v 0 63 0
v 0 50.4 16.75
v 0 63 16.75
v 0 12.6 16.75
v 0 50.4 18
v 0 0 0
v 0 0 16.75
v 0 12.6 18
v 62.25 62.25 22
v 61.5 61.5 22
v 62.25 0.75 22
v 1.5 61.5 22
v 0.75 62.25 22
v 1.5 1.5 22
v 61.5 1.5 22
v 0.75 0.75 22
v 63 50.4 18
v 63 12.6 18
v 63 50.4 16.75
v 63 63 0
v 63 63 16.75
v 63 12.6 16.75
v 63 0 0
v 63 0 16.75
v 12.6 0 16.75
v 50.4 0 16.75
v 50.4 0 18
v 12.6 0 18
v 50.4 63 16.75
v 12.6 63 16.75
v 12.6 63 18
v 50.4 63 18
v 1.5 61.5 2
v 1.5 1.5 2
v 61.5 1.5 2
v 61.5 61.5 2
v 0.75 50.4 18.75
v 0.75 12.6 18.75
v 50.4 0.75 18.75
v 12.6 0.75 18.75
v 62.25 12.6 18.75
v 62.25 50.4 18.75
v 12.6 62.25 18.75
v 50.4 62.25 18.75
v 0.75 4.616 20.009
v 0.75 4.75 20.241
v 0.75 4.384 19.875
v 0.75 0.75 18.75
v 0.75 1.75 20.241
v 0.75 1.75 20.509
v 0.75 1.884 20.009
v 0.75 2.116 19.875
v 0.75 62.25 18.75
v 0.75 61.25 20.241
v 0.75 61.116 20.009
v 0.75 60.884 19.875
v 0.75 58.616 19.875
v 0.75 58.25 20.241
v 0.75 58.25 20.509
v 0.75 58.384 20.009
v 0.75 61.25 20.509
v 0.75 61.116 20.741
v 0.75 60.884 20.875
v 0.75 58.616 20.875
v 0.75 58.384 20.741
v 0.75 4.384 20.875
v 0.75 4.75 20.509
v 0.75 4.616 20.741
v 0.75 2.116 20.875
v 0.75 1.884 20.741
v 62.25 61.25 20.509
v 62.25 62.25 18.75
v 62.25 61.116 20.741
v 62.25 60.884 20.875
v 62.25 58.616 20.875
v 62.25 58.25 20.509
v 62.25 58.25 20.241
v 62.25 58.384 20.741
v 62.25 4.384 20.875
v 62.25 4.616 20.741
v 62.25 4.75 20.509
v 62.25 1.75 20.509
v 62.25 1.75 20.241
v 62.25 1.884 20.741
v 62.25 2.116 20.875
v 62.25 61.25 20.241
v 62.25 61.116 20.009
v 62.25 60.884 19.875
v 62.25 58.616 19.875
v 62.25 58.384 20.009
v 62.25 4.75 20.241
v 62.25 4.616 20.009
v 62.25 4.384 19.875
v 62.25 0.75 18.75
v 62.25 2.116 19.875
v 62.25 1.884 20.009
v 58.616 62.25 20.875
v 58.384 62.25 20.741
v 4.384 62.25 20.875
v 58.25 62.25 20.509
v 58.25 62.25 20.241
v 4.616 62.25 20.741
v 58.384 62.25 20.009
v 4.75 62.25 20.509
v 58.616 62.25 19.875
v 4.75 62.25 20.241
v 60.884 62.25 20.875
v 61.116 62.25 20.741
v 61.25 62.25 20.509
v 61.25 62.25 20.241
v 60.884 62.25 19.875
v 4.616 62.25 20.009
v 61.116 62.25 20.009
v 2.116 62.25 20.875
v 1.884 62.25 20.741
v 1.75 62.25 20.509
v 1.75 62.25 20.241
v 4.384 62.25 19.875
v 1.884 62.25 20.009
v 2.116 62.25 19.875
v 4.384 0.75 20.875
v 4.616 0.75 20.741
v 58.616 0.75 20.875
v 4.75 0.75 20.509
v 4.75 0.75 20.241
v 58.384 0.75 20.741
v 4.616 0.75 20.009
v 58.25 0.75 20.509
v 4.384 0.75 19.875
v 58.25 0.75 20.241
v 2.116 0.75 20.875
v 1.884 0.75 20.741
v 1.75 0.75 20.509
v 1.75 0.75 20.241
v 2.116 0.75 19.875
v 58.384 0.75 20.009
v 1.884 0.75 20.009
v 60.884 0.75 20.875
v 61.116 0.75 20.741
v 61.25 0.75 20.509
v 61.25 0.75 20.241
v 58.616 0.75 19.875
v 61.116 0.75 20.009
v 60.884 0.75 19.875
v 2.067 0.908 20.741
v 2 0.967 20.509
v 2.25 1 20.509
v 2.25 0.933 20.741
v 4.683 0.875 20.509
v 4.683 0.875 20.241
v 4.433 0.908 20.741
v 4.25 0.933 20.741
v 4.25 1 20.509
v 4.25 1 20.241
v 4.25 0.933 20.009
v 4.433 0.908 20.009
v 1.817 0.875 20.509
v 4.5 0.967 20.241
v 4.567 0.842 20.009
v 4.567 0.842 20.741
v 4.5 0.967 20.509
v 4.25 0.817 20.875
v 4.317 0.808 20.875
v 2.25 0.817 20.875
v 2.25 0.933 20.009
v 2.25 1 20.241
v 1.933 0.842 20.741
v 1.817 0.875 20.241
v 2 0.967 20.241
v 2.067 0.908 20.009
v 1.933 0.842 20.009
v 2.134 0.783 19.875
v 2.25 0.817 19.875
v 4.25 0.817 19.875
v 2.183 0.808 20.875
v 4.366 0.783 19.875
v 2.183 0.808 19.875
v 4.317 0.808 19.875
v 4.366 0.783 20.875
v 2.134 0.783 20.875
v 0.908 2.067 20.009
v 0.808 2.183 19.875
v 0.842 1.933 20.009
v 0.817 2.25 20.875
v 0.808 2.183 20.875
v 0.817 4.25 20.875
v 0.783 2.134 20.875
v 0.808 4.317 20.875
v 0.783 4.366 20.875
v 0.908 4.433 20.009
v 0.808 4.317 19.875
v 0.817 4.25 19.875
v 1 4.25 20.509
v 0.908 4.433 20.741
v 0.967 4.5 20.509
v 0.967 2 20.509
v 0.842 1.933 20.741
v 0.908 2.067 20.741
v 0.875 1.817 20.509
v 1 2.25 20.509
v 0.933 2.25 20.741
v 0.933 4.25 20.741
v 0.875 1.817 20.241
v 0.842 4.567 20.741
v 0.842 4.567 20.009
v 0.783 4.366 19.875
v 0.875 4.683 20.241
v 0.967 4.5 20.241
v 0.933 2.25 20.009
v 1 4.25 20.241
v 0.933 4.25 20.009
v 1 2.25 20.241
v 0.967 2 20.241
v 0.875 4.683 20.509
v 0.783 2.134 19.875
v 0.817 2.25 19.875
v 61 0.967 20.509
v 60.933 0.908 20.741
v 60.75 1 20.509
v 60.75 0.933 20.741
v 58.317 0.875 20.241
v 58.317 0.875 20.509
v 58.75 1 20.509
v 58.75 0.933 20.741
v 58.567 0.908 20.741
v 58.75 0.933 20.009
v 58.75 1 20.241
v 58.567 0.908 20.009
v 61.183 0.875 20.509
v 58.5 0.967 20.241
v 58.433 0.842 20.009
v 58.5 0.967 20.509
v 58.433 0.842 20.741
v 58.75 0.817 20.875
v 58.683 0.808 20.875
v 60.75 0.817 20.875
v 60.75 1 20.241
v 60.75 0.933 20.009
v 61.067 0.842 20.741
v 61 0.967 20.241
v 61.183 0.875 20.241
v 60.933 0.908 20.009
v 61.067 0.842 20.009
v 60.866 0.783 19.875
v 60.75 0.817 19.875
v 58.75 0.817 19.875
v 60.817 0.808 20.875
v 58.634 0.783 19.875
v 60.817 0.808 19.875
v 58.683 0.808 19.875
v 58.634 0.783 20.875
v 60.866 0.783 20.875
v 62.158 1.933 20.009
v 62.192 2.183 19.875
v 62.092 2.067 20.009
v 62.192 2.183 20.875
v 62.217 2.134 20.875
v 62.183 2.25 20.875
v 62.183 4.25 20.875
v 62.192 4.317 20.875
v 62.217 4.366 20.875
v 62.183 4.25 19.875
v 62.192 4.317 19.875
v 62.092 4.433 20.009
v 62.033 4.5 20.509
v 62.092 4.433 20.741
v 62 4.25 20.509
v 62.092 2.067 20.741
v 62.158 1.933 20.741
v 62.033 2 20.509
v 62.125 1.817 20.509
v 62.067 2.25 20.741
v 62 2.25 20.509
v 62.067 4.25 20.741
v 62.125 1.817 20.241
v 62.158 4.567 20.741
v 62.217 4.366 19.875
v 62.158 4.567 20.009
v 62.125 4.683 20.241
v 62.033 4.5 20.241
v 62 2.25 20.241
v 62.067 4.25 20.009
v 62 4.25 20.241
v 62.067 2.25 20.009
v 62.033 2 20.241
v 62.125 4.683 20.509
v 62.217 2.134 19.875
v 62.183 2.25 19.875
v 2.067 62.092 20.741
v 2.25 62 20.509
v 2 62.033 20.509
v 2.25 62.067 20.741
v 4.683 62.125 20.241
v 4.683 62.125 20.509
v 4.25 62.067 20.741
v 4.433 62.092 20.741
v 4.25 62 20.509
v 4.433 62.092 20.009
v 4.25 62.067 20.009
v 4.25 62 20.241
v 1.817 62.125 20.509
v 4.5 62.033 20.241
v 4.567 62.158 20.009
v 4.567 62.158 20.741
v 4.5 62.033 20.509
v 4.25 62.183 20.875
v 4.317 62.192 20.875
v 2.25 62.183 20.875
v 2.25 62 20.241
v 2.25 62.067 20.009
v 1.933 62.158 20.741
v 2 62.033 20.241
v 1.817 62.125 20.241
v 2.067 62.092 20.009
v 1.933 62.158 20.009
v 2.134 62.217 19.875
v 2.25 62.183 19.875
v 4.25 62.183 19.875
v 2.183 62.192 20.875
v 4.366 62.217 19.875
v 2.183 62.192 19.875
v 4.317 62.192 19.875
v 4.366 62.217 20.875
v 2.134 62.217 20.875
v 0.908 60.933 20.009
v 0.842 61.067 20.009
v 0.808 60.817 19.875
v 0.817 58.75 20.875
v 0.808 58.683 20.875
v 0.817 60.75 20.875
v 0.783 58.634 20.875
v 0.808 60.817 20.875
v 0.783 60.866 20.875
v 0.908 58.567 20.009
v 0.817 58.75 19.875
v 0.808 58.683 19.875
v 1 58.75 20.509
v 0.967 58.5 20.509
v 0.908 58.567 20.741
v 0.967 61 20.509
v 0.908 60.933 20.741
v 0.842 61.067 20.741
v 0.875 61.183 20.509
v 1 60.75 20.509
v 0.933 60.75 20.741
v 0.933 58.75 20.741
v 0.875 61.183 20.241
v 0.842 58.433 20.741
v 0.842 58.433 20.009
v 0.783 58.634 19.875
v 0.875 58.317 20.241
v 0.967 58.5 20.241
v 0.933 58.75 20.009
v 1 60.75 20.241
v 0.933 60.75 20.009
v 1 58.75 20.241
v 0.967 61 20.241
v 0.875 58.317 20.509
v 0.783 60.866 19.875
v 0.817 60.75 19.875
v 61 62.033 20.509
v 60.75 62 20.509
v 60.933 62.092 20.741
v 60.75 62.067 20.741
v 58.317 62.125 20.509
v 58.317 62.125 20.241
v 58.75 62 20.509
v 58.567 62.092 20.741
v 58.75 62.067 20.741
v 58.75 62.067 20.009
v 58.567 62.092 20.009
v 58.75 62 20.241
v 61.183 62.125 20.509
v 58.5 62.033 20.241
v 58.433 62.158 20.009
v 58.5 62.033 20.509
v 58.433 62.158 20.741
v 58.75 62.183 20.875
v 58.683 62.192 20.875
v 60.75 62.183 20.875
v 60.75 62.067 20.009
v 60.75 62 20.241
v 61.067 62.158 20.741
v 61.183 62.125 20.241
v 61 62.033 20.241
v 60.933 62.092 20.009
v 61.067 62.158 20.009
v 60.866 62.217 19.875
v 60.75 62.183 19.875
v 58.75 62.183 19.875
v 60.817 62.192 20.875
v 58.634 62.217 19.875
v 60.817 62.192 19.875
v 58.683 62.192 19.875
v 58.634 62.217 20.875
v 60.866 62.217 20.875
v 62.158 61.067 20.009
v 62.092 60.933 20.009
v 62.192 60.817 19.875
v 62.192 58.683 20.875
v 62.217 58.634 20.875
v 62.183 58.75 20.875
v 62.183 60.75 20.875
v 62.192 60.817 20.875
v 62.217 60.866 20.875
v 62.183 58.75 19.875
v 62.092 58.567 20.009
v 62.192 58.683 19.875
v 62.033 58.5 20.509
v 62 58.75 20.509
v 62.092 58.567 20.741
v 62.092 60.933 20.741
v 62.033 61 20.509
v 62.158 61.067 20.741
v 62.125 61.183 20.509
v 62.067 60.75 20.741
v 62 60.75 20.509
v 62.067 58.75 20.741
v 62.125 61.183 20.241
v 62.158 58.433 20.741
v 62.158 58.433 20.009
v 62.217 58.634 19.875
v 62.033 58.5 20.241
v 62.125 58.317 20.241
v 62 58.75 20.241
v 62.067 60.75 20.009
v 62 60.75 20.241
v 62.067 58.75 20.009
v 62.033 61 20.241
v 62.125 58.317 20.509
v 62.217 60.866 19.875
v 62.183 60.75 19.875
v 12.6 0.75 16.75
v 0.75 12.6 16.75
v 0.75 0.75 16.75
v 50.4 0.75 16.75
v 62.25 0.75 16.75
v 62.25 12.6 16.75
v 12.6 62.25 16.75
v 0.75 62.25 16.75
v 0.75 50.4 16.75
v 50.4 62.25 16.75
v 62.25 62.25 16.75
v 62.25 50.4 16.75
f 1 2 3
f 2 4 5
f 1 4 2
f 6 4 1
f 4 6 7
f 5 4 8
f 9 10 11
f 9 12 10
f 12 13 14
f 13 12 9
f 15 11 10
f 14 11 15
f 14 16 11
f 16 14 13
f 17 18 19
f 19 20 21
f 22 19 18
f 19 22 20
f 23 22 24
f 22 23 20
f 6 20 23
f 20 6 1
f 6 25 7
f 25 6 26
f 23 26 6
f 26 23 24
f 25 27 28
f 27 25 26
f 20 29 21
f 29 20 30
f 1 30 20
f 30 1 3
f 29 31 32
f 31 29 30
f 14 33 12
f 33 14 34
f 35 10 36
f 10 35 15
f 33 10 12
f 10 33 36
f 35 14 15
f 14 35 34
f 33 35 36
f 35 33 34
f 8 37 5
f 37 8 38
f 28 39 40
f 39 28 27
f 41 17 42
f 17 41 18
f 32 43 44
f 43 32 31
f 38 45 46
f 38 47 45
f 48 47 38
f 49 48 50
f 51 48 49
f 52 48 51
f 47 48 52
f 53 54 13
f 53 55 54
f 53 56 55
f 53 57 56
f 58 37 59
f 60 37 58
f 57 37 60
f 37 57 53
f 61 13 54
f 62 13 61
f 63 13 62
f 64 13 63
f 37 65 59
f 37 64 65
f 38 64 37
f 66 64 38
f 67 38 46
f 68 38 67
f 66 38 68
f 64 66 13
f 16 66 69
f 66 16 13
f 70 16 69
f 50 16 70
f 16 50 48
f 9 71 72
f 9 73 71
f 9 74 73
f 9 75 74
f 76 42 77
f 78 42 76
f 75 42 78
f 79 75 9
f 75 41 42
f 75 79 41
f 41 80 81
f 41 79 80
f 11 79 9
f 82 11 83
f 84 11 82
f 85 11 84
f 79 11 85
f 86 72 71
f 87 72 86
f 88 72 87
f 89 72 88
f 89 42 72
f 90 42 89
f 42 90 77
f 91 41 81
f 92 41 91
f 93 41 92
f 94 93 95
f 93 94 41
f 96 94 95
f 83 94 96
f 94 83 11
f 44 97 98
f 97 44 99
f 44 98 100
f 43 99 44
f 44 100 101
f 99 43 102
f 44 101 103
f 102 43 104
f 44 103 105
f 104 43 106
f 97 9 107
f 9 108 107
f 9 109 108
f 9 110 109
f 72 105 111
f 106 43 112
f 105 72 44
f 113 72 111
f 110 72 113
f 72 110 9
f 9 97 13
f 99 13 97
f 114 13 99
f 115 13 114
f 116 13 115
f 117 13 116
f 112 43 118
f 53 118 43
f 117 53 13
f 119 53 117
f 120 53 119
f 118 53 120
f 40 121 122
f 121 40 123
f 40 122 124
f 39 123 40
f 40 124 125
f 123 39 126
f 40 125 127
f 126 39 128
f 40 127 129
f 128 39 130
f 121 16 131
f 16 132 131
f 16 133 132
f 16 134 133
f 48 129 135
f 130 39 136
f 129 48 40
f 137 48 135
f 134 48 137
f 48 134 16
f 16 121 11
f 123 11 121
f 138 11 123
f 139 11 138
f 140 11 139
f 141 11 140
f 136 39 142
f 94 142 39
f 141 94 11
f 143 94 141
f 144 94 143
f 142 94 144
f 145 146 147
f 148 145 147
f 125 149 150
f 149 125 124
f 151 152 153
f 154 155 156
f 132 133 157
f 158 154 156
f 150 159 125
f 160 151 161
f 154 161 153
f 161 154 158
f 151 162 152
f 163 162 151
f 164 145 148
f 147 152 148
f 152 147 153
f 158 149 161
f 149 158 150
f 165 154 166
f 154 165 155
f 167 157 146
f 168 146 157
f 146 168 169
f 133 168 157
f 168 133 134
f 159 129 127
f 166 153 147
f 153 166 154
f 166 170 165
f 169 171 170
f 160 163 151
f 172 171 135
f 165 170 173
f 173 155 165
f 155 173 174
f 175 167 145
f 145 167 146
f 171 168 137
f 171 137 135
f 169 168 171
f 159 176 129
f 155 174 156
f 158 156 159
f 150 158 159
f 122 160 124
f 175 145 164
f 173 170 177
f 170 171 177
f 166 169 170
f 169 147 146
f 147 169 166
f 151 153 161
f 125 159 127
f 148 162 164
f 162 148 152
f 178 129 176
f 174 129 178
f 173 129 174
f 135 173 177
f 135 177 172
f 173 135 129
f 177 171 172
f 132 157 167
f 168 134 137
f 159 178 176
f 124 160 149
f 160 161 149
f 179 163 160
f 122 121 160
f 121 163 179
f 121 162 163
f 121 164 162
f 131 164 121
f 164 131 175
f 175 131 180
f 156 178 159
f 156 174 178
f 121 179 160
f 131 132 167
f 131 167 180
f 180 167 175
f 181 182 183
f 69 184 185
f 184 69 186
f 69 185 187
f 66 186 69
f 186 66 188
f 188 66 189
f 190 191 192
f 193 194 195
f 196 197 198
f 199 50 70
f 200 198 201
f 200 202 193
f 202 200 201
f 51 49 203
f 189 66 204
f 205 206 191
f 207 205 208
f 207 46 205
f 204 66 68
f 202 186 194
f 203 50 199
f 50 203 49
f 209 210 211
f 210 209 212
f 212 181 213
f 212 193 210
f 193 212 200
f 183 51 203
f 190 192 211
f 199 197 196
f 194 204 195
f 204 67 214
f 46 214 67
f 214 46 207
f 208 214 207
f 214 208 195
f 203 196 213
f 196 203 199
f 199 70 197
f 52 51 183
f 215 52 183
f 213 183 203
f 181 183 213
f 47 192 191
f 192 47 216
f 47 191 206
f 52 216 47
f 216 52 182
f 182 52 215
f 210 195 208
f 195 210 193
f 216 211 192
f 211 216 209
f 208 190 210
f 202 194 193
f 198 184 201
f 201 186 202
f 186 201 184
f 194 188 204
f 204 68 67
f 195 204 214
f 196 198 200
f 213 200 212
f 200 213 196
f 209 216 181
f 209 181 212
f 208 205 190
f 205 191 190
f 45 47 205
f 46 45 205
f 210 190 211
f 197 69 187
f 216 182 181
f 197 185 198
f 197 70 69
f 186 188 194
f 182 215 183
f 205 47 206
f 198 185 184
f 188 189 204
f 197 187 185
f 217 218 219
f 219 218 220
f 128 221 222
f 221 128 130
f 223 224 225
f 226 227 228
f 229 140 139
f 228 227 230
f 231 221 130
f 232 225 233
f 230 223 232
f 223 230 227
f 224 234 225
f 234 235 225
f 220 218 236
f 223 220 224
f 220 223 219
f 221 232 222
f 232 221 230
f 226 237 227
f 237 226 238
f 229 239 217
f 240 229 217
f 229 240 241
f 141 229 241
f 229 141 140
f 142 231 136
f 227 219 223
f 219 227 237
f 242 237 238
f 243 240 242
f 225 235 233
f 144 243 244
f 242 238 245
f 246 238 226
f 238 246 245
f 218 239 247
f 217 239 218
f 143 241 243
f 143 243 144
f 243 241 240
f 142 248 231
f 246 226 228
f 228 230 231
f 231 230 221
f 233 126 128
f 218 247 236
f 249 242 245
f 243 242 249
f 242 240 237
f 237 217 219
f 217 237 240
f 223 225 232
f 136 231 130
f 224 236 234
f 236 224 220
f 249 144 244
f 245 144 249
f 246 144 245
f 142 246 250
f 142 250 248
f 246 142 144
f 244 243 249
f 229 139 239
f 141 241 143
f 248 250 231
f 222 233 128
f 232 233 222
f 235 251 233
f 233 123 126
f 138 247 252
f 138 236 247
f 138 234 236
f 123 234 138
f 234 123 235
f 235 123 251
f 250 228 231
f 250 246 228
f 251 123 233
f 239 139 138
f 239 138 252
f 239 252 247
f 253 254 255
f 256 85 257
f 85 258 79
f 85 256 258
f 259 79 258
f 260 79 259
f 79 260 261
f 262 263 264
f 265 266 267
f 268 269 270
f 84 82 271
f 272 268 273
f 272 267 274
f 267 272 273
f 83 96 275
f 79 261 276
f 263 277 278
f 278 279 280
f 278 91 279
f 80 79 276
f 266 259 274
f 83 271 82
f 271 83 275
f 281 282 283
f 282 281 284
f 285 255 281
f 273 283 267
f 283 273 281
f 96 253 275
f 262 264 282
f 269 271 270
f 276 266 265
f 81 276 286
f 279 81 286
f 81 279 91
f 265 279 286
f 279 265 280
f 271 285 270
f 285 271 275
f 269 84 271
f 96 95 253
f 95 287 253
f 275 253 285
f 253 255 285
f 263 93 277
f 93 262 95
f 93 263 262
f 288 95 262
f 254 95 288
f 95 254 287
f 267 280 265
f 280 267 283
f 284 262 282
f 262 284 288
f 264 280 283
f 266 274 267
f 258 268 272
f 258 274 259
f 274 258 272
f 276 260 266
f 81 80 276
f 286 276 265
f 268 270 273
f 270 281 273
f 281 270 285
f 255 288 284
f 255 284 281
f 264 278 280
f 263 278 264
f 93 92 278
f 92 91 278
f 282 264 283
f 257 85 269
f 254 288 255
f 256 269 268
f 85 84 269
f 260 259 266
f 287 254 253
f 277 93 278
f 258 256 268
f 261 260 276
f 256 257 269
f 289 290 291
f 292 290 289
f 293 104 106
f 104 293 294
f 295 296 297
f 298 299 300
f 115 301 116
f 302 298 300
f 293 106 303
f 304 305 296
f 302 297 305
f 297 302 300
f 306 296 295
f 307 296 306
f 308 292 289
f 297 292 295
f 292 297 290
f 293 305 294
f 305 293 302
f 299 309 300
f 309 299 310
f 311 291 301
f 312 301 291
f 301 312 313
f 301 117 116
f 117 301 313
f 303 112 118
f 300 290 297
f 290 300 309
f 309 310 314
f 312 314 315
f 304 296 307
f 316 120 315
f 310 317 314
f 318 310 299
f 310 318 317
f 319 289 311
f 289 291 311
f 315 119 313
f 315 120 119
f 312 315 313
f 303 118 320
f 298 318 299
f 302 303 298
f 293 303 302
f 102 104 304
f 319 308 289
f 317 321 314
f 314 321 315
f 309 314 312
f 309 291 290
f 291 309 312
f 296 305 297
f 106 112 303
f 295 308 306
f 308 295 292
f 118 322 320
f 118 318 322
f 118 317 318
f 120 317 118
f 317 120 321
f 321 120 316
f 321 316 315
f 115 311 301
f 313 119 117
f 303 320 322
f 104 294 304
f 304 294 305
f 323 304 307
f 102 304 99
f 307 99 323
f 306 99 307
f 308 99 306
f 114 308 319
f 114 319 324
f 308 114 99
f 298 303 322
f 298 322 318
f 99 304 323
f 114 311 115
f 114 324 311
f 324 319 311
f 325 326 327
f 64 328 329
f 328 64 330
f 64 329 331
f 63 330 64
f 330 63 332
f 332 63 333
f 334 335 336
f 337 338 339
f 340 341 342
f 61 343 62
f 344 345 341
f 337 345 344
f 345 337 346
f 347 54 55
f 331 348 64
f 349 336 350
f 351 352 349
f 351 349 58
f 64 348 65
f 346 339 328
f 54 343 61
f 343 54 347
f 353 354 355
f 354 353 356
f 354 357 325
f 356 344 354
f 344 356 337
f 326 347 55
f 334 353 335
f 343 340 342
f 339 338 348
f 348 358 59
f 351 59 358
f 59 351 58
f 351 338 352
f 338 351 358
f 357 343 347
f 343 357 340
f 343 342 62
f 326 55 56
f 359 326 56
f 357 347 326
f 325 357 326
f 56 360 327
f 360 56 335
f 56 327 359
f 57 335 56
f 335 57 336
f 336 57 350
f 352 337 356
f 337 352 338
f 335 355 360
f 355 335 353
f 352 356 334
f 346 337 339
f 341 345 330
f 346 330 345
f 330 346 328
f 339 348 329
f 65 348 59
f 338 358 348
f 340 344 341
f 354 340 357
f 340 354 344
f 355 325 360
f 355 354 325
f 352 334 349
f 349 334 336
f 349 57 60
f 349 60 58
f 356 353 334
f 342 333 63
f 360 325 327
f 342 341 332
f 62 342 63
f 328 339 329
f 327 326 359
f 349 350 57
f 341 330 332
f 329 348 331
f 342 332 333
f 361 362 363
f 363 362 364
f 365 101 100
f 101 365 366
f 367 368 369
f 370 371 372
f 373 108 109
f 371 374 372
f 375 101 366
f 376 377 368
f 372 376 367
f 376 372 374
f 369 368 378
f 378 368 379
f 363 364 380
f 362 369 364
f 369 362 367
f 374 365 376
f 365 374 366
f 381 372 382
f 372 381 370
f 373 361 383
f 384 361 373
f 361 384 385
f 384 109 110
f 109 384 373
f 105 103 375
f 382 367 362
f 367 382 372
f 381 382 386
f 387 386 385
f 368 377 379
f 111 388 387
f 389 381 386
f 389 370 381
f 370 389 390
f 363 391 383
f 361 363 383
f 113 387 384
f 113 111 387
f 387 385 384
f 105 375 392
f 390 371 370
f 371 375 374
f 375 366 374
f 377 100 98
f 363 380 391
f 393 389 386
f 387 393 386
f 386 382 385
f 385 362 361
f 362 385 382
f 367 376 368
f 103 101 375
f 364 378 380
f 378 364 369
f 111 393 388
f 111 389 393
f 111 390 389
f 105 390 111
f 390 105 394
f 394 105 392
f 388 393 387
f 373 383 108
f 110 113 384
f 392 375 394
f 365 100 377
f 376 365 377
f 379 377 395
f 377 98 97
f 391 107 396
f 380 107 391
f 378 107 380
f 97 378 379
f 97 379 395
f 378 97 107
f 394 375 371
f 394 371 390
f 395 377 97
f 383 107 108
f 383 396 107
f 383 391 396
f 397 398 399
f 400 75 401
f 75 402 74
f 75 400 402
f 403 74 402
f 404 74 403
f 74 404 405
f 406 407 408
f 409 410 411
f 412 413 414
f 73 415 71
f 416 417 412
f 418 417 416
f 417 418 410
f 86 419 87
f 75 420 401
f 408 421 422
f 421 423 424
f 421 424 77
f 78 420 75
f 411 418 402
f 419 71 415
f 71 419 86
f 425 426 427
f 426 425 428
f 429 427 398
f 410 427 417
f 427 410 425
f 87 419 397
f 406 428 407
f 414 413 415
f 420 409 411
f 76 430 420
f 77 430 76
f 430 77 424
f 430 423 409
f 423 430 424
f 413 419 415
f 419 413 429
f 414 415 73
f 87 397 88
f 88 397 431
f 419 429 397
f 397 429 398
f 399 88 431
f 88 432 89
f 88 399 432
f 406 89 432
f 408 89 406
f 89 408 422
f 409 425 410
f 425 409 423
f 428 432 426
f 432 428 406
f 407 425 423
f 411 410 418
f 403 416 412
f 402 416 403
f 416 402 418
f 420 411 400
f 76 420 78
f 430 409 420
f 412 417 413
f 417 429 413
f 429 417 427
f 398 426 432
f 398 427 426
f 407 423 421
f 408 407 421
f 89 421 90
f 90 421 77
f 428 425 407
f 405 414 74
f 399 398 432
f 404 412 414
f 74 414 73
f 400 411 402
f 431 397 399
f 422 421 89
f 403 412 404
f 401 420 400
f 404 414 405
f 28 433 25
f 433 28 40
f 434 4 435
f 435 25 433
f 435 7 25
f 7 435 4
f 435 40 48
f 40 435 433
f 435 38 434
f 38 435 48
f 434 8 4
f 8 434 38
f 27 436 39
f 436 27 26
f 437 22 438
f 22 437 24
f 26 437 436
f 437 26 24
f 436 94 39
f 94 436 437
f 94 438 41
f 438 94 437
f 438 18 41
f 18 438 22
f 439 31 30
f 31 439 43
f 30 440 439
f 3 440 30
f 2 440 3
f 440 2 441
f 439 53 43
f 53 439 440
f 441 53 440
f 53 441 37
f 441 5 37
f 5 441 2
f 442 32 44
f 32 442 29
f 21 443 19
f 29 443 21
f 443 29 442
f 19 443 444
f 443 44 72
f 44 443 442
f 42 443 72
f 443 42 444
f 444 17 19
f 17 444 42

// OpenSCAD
include <boardgame_insert_toolkit_lib.2.scad>;

// determines whether lids are output.
g_b_print_lid = false;

// determines whether boxes are output.
g_b_print_box = true; 

// Focus on one box
// g_isolated_print_box = ""; 

// Used to visualize how all of the boxes fit together. 
g_b_visualization = false;          
        
// this is the outer wall thickness. 
//Default = 1.5mm
g_wall_thickness = 1.5;

// The tolerance value is extra space put between planes of the lid and box that fit together.
// Increase the tolerance to loosen the fit and decrease it to tighten it.
//
// Note that the tolerance is applied exclusively to the lid.
// So if the lid is too tight or too loose, change this value ( up for looser fit, down for tighter fit ) and 
// you only need to reprint the lid.
// 
// The exception is the stackable box, where the bottom of the box is the lid of the box below,
// in which case the tolerance also affects that box bottom.
//
g_tolerance = 0.15;

// This adjusts the position of the lid detents downward. 
// The larger the value, the bigger the gap between the lid and the box.
g_tolerance_detents_pos = 0.1;

data =
[
    [   "hansa_market",
        [
            [ BOX_SIZE_XYZ,                                     [63, 63, 22] ],
            [ BOX_LID,
                [
                    [ LID_SOLID_B, f],
                    [LID_FIT_UNDER_B, f]
                ]
            ],
            [ BOX_COMPONENT,
                [
                    [CMP_COMPARTMENT_SIZE_XYZ,  [ 60, 60, 20] ],
                    //[CMP_MARGIN_FBLR, [1,1,1,1]]
                ]
            ],                        
        ]
    ],
];


MakeAll();
